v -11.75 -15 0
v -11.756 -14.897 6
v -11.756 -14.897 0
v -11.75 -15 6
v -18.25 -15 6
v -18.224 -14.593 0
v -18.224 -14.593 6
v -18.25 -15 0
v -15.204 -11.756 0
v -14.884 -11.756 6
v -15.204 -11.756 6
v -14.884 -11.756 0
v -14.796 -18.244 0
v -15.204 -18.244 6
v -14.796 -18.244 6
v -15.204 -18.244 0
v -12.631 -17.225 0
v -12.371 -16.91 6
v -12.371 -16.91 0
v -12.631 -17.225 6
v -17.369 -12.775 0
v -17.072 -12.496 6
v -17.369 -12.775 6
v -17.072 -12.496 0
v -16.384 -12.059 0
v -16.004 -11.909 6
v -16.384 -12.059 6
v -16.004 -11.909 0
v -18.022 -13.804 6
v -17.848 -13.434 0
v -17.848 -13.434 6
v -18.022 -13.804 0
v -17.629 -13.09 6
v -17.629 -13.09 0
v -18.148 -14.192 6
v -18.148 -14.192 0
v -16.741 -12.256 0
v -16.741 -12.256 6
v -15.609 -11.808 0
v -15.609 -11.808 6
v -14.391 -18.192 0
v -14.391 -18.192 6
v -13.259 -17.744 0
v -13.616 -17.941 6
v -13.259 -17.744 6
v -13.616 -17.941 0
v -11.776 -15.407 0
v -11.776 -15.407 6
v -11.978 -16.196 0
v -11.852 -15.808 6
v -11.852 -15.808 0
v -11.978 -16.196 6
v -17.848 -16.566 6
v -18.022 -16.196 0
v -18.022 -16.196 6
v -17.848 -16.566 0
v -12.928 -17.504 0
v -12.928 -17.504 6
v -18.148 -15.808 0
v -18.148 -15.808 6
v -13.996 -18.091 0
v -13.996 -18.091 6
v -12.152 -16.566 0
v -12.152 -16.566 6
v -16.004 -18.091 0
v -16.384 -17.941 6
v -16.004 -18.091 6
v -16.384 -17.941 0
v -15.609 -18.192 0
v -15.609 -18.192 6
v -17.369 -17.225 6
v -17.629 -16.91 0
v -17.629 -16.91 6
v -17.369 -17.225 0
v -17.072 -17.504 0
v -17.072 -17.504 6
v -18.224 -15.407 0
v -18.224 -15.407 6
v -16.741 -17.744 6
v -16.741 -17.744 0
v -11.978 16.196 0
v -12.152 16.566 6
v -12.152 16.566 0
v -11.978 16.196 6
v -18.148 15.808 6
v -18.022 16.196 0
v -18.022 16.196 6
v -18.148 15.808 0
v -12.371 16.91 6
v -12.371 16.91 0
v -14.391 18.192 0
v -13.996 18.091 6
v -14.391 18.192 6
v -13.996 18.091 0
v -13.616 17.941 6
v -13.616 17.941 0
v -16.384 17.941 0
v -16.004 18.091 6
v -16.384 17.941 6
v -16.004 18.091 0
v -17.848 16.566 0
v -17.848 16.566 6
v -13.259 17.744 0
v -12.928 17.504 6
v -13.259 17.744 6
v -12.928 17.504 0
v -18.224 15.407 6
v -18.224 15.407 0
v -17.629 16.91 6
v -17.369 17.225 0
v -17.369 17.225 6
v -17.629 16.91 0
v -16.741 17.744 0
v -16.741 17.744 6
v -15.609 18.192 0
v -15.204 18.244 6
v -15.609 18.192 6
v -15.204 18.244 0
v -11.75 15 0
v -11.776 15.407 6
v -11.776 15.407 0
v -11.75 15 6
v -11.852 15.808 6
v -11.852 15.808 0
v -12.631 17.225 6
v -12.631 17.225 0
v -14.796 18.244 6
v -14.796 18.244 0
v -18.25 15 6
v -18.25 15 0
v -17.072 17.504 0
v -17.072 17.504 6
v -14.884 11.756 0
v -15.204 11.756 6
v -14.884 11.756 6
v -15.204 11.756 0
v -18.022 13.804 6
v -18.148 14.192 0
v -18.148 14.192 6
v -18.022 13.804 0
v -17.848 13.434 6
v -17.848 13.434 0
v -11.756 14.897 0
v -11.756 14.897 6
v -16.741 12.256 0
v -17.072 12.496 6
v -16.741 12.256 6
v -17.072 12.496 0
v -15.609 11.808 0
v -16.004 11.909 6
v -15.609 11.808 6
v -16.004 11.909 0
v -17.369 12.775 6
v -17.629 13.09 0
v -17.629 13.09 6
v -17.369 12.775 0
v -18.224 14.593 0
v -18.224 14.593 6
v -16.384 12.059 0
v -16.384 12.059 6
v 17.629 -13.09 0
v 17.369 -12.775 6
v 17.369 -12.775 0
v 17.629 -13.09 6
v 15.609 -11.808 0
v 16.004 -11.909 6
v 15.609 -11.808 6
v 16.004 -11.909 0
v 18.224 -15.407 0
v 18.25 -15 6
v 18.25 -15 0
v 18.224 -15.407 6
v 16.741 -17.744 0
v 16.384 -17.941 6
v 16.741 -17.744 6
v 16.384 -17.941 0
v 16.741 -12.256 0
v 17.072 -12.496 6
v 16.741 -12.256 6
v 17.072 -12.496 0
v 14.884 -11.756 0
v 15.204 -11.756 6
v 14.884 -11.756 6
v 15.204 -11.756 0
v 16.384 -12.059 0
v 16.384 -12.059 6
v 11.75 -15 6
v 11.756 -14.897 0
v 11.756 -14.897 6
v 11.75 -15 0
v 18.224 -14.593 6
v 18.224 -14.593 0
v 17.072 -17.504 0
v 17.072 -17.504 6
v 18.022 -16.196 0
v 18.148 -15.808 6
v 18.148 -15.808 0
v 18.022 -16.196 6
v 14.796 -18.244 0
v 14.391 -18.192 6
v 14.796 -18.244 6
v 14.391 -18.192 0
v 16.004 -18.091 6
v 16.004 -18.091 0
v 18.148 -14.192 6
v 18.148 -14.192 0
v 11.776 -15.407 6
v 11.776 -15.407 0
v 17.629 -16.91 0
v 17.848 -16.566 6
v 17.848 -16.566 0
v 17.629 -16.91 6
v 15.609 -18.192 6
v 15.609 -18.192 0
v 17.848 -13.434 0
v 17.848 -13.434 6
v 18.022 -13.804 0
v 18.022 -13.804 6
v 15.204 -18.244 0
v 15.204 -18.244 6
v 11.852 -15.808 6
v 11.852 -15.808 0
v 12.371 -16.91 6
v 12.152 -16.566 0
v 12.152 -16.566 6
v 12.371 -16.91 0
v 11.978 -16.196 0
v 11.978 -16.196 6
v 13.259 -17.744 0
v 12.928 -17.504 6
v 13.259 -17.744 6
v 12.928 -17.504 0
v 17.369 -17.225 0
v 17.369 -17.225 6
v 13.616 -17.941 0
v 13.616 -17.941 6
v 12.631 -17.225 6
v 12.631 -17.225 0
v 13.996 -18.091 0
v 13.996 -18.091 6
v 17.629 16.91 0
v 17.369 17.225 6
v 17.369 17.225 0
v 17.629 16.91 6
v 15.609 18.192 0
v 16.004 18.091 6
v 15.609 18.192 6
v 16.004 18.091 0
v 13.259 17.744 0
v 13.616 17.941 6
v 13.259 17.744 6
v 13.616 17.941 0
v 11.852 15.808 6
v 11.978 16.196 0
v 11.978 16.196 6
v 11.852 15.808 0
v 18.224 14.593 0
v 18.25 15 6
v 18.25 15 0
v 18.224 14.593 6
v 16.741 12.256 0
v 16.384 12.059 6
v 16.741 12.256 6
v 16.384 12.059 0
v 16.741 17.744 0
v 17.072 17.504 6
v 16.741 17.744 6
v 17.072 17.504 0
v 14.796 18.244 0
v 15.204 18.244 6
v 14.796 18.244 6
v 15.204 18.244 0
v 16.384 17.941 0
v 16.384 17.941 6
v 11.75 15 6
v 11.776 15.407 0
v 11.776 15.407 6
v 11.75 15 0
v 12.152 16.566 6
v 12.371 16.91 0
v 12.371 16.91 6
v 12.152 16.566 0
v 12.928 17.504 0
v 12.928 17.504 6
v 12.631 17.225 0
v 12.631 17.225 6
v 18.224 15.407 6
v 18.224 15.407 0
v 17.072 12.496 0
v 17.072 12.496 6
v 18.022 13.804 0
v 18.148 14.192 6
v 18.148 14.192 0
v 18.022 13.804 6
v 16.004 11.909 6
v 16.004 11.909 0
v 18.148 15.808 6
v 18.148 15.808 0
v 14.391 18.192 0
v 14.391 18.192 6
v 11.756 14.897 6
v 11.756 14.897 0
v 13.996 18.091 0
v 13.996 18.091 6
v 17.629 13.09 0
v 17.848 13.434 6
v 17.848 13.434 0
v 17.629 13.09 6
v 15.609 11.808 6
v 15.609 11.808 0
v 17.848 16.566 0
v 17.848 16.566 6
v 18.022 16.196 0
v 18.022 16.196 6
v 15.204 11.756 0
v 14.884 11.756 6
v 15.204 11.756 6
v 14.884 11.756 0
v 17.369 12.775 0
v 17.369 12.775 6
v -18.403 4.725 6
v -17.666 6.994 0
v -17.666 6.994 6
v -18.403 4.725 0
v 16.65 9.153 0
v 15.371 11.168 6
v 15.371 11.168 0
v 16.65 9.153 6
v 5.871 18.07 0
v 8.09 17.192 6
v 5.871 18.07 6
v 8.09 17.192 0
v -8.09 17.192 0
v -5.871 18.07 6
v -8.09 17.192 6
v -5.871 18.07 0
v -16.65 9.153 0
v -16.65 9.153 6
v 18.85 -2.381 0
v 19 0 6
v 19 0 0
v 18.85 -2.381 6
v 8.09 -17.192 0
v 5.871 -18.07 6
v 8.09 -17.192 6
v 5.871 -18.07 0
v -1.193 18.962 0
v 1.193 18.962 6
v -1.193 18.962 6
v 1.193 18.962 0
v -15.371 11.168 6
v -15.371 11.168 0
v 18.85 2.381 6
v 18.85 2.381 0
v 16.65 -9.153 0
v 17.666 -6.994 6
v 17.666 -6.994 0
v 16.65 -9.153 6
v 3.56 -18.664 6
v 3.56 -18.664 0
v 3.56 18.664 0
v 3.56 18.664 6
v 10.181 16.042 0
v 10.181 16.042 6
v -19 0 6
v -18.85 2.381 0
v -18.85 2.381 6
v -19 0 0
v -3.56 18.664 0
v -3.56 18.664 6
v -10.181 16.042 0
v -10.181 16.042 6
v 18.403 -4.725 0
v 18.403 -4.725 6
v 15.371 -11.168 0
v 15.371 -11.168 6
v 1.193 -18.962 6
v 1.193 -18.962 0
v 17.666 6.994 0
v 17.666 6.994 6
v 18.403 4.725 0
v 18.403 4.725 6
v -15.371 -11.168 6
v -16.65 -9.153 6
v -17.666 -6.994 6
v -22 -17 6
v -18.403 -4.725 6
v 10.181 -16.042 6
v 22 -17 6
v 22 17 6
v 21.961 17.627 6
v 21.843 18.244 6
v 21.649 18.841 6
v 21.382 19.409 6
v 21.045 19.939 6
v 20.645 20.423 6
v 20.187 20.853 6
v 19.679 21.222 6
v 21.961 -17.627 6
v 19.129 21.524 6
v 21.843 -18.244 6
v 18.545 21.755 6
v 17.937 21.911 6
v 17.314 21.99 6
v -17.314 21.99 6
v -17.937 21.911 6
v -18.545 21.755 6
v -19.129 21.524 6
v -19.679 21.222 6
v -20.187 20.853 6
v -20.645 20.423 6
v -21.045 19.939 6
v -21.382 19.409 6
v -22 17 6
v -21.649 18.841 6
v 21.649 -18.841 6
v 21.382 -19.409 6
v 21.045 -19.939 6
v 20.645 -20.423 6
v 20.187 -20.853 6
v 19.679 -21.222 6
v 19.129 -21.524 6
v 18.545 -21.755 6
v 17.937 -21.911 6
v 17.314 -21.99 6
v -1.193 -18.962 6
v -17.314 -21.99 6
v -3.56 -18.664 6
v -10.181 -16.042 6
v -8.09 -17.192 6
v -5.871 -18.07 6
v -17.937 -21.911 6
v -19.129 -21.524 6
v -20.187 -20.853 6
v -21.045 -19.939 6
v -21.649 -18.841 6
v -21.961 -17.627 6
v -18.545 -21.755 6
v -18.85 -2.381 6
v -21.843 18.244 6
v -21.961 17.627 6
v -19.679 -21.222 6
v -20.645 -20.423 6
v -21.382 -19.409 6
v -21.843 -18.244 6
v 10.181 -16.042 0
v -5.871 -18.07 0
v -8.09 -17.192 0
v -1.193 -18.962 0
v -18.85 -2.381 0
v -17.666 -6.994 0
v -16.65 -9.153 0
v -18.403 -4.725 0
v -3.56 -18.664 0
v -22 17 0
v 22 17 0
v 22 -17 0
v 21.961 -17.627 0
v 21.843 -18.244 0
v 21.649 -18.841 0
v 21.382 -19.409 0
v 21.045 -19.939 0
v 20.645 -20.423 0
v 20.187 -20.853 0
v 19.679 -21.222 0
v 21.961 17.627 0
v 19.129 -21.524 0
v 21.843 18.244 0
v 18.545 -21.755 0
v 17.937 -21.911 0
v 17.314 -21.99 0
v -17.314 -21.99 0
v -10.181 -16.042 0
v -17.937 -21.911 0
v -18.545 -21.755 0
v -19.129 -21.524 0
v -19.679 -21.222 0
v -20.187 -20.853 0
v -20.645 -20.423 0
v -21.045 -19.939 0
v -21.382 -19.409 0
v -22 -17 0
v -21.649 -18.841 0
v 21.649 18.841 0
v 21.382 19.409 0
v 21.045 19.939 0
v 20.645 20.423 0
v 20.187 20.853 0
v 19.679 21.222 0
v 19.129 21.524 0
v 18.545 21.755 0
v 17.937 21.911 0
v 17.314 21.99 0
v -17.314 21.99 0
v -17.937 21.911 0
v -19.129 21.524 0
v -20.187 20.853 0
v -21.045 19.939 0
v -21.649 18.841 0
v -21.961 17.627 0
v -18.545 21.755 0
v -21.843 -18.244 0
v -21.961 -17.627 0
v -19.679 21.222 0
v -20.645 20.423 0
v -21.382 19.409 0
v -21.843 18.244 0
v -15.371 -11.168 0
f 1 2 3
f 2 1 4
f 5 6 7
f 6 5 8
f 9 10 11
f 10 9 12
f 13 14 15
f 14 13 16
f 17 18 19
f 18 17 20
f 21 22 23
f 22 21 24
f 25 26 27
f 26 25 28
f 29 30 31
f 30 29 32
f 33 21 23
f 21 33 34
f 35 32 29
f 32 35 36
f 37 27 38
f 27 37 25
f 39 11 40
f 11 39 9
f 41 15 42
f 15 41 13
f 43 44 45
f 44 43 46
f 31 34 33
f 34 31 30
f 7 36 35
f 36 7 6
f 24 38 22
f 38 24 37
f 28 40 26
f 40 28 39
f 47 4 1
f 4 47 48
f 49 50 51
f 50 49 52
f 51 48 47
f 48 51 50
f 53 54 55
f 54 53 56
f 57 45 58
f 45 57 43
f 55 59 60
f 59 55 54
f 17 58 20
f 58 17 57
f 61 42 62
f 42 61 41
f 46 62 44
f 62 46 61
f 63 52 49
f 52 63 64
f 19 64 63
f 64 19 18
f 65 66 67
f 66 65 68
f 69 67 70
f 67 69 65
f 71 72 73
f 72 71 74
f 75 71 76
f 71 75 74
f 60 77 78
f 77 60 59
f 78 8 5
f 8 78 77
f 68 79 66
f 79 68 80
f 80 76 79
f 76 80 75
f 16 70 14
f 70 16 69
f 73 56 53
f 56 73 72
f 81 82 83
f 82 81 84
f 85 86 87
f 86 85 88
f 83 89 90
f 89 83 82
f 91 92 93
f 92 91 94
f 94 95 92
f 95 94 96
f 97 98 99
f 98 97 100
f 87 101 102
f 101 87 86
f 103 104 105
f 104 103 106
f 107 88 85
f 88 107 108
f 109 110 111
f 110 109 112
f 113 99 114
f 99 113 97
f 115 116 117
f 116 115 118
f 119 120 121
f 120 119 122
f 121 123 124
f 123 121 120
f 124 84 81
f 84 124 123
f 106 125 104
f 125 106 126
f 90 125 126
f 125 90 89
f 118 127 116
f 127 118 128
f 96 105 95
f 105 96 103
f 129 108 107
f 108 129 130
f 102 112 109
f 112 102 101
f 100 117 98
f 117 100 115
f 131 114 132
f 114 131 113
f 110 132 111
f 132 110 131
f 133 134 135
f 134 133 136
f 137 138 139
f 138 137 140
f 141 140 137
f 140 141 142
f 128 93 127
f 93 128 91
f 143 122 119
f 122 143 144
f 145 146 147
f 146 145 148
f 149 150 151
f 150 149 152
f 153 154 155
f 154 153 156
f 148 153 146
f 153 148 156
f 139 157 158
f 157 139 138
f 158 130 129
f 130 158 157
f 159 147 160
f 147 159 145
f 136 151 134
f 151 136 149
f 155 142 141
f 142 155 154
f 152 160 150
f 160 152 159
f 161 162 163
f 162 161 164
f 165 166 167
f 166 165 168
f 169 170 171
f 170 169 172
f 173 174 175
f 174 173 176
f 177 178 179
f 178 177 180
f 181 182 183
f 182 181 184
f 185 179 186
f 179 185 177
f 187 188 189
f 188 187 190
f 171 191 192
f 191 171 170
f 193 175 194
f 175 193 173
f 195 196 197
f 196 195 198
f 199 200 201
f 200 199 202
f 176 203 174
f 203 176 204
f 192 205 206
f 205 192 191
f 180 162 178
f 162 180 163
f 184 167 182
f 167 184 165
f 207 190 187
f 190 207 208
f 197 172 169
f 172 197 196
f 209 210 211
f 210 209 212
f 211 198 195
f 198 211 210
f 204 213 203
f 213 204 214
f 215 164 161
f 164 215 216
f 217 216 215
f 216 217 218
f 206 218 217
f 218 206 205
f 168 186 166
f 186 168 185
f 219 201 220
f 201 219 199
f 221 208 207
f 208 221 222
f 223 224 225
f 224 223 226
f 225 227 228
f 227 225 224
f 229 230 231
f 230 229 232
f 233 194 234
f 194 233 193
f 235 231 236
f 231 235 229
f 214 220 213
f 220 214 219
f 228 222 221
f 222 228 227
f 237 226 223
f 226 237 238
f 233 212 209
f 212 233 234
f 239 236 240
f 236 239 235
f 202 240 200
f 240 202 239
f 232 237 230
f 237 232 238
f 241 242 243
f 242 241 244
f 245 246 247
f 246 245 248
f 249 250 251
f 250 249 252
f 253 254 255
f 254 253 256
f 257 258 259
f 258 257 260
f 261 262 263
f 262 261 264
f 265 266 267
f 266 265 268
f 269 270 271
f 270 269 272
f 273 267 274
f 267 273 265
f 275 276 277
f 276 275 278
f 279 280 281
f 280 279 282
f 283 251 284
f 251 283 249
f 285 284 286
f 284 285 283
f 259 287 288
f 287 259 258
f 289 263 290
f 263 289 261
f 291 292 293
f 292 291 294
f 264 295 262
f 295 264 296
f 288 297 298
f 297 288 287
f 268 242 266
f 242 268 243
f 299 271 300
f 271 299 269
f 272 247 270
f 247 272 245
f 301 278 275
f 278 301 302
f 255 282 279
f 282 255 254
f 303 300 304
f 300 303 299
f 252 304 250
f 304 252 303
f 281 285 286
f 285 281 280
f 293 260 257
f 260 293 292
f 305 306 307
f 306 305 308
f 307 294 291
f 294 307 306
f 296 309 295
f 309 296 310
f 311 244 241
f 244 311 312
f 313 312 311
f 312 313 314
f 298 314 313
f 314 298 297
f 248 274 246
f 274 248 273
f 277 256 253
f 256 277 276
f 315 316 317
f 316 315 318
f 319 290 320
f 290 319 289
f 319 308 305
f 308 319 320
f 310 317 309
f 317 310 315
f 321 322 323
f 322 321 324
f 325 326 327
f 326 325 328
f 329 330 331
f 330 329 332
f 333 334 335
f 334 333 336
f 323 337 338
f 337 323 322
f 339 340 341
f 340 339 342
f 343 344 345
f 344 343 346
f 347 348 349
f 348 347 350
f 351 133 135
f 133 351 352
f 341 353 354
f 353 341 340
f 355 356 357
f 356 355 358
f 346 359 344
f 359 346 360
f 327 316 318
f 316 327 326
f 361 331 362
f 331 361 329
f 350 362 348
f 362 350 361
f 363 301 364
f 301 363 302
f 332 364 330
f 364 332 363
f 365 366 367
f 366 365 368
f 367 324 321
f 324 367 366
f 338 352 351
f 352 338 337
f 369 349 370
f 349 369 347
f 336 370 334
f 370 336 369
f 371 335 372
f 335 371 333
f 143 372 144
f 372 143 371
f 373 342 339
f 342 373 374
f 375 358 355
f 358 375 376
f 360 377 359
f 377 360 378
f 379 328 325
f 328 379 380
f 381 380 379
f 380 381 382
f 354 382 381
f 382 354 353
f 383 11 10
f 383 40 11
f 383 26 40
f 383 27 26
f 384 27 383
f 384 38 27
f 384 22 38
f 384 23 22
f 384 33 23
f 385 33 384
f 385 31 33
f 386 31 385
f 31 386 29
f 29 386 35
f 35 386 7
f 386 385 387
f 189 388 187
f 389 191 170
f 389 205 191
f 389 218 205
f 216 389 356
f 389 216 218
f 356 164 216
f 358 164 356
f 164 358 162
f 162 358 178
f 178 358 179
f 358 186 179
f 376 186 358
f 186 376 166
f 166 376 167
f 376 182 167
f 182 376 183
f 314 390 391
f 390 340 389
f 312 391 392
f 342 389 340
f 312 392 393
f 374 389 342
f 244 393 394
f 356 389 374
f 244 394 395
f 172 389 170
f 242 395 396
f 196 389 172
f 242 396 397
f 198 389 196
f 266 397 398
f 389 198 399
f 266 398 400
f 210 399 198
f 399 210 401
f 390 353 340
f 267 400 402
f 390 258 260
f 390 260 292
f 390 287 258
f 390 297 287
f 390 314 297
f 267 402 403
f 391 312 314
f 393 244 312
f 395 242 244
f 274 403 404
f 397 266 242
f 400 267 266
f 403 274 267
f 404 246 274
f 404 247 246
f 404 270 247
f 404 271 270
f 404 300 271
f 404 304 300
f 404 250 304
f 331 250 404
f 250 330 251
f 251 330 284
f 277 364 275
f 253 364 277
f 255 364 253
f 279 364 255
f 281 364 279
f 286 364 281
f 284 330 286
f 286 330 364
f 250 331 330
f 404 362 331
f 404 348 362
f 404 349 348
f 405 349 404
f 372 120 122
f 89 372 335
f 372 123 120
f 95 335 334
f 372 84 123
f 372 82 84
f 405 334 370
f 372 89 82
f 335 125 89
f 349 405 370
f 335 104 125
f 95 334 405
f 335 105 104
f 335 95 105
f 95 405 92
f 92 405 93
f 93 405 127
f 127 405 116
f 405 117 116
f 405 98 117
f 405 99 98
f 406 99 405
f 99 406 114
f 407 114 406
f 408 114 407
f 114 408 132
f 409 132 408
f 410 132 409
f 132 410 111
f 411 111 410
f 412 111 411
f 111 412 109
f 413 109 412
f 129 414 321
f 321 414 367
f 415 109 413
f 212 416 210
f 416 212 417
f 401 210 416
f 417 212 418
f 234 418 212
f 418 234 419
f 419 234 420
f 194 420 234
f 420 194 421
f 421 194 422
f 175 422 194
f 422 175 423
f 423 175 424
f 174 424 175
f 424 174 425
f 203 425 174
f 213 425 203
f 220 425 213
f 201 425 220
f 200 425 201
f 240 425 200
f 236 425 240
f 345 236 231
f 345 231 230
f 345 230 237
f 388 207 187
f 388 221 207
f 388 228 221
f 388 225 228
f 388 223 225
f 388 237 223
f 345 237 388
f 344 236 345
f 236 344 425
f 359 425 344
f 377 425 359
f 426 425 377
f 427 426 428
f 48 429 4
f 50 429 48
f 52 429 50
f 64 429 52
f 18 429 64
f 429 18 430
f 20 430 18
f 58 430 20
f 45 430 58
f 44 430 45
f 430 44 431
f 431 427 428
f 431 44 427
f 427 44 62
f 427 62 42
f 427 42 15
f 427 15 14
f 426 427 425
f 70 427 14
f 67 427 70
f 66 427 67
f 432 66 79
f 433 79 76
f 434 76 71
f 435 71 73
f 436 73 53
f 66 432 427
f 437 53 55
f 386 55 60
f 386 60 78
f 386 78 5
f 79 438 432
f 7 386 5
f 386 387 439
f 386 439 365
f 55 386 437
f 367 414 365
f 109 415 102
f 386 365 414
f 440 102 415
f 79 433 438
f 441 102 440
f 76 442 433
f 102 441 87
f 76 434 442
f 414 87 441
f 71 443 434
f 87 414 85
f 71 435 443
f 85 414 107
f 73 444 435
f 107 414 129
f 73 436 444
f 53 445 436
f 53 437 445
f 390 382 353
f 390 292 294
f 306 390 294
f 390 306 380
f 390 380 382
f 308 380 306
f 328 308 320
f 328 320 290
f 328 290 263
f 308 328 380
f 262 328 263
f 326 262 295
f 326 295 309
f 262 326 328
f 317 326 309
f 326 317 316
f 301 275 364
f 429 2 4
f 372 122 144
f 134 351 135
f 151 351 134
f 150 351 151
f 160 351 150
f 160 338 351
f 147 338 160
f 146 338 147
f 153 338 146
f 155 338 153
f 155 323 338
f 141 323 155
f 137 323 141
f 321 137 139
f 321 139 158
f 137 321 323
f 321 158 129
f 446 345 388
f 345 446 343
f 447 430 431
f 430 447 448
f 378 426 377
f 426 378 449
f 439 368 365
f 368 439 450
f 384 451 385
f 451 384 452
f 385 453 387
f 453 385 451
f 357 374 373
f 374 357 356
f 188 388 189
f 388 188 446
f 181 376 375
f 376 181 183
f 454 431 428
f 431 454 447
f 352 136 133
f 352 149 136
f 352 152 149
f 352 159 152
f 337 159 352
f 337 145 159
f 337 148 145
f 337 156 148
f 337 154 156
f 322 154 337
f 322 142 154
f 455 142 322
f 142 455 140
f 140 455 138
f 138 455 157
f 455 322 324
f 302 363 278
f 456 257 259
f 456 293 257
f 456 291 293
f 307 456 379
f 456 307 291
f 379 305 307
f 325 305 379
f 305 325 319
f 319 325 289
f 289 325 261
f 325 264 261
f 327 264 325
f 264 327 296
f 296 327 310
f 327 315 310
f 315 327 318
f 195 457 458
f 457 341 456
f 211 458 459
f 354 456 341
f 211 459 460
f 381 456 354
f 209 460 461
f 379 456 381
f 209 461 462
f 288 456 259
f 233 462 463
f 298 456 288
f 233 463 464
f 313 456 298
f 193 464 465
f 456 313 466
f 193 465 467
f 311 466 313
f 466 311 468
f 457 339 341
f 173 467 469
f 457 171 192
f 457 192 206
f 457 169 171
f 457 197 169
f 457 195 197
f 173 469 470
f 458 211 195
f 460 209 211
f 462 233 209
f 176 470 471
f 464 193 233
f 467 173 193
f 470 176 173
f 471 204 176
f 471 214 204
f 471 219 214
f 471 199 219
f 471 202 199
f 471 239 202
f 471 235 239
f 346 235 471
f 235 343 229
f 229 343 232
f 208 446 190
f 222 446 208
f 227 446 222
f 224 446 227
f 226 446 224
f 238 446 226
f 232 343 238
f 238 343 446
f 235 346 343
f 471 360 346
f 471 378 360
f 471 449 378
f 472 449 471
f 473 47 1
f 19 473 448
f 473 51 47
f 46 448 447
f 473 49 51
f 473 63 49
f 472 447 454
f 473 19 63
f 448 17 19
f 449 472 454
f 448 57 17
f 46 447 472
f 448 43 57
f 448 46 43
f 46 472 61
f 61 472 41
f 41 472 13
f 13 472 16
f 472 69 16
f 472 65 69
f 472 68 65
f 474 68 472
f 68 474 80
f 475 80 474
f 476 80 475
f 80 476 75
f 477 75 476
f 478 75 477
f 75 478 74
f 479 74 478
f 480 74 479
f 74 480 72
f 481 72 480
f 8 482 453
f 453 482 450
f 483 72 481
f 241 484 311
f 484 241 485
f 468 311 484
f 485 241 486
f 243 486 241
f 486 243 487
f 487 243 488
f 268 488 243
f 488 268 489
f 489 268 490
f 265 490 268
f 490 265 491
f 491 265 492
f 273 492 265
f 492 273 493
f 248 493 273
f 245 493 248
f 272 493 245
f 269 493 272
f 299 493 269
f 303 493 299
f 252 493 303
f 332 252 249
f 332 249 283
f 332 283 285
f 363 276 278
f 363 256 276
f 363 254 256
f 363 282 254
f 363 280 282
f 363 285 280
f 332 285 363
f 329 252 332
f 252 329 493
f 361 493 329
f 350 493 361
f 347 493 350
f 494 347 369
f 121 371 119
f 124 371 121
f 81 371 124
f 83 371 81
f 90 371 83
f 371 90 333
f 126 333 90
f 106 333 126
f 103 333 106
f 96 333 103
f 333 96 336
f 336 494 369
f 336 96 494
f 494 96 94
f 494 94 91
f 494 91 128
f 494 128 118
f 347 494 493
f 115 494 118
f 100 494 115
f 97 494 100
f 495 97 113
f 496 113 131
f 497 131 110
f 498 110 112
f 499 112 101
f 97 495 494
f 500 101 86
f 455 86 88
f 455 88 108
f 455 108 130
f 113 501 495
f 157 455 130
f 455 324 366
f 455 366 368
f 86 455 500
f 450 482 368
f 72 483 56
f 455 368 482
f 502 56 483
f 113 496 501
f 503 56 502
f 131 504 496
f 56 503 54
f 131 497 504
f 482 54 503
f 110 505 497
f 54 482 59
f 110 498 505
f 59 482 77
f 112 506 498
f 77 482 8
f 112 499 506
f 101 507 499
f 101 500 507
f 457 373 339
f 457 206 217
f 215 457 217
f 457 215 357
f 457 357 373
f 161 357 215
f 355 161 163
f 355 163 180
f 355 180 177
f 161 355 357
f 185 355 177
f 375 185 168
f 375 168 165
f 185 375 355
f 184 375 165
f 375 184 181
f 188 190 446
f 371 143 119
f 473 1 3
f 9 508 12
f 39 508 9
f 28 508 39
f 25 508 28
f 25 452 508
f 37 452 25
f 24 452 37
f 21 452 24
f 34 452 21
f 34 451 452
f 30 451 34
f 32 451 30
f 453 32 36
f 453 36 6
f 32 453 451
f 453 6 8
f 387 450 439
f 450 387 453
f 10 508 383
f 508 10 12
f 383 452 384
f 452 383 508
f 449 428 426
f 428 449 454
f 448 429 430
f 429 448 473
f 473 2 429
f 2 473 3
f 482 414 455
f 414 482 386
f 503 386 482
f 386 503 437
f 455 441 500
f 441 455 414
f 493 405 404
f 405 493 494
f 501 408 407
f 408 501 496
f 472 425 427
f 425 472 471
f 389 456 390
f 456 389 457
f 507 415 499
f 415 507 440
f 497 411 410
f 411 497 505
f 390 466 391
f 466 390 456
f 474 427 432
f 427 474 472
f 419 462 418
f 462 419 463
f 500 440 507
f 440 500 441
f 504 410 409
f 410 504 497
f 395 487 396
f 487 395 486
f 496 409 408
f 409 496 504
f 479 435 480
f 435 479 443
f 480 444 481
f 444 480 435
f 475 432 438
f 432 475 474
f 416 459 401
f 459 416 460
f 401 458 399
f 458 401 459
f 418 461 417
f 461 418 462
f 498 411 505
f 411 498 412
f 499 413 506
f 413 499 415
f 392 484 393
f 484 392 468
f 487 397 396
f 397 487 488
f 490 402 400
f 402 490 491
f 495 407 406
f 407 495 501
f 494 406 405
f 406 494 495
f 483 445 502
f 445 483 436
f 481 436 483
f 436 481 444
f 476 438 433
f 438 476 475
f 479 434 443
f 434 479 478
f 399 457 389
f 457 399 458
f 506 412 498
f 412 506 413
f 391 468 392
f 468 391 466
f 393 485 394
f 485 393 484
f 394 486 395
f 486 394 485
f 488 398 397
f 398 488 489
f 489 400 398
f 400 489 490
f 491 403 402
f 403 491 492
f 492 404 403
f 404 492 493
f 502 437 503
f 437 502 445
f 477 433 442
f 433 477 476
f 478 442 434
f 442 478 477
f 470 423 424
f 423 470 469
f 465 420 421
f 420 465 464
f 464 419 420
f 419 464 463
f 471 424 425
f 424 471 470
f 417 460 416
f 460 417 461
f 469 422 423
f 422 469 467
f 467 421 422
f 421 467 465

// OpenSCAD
$fn = 50;


difference() {
	union() {
		hull() {
			translate(v = [-17.0000000000, 17.0000000000, 0]) {
				cylinder(h = 6, r = 5);
			}
			translate(v = [17.0000000000, 17.0000000000, 0]) {
				cylinder(h = 6, r = 5);
			}
			translate(v = [-17.0000000000, -17.0000000000, 0]) {
				cylinder(h = 6, r = 5);
			}
			translate(v = [17.0000000000, -17.0000000000, 0]) {
				cylinder(h = 6, r = 5);
			}
		}
	}
	union() {
		#translate(v = [-15.0000000000, -15.0000000000, -100.0000000000]) {
			cylinder(h = 200, r = 3.2500000000);
		}
		#translate(v = [-15.0000000000, 15.0000000000, -100.0000000000]) {
			cylinder(h = 200, r = 3.2500000000);
		}
		#translate(v = [15.0000000000, -15.0000000000, -100.0000000000]) {
			cylinder(h = 200, r = 3.2500000000);
		}
		#translate(v = [15.0000000000, 15.0000000000, -100.0000000000]) {
			cylinder(h = 200, r = 3.2500000000);
		}
		#cylinder(h = 6, r = 19.0000000000);
	}
}
